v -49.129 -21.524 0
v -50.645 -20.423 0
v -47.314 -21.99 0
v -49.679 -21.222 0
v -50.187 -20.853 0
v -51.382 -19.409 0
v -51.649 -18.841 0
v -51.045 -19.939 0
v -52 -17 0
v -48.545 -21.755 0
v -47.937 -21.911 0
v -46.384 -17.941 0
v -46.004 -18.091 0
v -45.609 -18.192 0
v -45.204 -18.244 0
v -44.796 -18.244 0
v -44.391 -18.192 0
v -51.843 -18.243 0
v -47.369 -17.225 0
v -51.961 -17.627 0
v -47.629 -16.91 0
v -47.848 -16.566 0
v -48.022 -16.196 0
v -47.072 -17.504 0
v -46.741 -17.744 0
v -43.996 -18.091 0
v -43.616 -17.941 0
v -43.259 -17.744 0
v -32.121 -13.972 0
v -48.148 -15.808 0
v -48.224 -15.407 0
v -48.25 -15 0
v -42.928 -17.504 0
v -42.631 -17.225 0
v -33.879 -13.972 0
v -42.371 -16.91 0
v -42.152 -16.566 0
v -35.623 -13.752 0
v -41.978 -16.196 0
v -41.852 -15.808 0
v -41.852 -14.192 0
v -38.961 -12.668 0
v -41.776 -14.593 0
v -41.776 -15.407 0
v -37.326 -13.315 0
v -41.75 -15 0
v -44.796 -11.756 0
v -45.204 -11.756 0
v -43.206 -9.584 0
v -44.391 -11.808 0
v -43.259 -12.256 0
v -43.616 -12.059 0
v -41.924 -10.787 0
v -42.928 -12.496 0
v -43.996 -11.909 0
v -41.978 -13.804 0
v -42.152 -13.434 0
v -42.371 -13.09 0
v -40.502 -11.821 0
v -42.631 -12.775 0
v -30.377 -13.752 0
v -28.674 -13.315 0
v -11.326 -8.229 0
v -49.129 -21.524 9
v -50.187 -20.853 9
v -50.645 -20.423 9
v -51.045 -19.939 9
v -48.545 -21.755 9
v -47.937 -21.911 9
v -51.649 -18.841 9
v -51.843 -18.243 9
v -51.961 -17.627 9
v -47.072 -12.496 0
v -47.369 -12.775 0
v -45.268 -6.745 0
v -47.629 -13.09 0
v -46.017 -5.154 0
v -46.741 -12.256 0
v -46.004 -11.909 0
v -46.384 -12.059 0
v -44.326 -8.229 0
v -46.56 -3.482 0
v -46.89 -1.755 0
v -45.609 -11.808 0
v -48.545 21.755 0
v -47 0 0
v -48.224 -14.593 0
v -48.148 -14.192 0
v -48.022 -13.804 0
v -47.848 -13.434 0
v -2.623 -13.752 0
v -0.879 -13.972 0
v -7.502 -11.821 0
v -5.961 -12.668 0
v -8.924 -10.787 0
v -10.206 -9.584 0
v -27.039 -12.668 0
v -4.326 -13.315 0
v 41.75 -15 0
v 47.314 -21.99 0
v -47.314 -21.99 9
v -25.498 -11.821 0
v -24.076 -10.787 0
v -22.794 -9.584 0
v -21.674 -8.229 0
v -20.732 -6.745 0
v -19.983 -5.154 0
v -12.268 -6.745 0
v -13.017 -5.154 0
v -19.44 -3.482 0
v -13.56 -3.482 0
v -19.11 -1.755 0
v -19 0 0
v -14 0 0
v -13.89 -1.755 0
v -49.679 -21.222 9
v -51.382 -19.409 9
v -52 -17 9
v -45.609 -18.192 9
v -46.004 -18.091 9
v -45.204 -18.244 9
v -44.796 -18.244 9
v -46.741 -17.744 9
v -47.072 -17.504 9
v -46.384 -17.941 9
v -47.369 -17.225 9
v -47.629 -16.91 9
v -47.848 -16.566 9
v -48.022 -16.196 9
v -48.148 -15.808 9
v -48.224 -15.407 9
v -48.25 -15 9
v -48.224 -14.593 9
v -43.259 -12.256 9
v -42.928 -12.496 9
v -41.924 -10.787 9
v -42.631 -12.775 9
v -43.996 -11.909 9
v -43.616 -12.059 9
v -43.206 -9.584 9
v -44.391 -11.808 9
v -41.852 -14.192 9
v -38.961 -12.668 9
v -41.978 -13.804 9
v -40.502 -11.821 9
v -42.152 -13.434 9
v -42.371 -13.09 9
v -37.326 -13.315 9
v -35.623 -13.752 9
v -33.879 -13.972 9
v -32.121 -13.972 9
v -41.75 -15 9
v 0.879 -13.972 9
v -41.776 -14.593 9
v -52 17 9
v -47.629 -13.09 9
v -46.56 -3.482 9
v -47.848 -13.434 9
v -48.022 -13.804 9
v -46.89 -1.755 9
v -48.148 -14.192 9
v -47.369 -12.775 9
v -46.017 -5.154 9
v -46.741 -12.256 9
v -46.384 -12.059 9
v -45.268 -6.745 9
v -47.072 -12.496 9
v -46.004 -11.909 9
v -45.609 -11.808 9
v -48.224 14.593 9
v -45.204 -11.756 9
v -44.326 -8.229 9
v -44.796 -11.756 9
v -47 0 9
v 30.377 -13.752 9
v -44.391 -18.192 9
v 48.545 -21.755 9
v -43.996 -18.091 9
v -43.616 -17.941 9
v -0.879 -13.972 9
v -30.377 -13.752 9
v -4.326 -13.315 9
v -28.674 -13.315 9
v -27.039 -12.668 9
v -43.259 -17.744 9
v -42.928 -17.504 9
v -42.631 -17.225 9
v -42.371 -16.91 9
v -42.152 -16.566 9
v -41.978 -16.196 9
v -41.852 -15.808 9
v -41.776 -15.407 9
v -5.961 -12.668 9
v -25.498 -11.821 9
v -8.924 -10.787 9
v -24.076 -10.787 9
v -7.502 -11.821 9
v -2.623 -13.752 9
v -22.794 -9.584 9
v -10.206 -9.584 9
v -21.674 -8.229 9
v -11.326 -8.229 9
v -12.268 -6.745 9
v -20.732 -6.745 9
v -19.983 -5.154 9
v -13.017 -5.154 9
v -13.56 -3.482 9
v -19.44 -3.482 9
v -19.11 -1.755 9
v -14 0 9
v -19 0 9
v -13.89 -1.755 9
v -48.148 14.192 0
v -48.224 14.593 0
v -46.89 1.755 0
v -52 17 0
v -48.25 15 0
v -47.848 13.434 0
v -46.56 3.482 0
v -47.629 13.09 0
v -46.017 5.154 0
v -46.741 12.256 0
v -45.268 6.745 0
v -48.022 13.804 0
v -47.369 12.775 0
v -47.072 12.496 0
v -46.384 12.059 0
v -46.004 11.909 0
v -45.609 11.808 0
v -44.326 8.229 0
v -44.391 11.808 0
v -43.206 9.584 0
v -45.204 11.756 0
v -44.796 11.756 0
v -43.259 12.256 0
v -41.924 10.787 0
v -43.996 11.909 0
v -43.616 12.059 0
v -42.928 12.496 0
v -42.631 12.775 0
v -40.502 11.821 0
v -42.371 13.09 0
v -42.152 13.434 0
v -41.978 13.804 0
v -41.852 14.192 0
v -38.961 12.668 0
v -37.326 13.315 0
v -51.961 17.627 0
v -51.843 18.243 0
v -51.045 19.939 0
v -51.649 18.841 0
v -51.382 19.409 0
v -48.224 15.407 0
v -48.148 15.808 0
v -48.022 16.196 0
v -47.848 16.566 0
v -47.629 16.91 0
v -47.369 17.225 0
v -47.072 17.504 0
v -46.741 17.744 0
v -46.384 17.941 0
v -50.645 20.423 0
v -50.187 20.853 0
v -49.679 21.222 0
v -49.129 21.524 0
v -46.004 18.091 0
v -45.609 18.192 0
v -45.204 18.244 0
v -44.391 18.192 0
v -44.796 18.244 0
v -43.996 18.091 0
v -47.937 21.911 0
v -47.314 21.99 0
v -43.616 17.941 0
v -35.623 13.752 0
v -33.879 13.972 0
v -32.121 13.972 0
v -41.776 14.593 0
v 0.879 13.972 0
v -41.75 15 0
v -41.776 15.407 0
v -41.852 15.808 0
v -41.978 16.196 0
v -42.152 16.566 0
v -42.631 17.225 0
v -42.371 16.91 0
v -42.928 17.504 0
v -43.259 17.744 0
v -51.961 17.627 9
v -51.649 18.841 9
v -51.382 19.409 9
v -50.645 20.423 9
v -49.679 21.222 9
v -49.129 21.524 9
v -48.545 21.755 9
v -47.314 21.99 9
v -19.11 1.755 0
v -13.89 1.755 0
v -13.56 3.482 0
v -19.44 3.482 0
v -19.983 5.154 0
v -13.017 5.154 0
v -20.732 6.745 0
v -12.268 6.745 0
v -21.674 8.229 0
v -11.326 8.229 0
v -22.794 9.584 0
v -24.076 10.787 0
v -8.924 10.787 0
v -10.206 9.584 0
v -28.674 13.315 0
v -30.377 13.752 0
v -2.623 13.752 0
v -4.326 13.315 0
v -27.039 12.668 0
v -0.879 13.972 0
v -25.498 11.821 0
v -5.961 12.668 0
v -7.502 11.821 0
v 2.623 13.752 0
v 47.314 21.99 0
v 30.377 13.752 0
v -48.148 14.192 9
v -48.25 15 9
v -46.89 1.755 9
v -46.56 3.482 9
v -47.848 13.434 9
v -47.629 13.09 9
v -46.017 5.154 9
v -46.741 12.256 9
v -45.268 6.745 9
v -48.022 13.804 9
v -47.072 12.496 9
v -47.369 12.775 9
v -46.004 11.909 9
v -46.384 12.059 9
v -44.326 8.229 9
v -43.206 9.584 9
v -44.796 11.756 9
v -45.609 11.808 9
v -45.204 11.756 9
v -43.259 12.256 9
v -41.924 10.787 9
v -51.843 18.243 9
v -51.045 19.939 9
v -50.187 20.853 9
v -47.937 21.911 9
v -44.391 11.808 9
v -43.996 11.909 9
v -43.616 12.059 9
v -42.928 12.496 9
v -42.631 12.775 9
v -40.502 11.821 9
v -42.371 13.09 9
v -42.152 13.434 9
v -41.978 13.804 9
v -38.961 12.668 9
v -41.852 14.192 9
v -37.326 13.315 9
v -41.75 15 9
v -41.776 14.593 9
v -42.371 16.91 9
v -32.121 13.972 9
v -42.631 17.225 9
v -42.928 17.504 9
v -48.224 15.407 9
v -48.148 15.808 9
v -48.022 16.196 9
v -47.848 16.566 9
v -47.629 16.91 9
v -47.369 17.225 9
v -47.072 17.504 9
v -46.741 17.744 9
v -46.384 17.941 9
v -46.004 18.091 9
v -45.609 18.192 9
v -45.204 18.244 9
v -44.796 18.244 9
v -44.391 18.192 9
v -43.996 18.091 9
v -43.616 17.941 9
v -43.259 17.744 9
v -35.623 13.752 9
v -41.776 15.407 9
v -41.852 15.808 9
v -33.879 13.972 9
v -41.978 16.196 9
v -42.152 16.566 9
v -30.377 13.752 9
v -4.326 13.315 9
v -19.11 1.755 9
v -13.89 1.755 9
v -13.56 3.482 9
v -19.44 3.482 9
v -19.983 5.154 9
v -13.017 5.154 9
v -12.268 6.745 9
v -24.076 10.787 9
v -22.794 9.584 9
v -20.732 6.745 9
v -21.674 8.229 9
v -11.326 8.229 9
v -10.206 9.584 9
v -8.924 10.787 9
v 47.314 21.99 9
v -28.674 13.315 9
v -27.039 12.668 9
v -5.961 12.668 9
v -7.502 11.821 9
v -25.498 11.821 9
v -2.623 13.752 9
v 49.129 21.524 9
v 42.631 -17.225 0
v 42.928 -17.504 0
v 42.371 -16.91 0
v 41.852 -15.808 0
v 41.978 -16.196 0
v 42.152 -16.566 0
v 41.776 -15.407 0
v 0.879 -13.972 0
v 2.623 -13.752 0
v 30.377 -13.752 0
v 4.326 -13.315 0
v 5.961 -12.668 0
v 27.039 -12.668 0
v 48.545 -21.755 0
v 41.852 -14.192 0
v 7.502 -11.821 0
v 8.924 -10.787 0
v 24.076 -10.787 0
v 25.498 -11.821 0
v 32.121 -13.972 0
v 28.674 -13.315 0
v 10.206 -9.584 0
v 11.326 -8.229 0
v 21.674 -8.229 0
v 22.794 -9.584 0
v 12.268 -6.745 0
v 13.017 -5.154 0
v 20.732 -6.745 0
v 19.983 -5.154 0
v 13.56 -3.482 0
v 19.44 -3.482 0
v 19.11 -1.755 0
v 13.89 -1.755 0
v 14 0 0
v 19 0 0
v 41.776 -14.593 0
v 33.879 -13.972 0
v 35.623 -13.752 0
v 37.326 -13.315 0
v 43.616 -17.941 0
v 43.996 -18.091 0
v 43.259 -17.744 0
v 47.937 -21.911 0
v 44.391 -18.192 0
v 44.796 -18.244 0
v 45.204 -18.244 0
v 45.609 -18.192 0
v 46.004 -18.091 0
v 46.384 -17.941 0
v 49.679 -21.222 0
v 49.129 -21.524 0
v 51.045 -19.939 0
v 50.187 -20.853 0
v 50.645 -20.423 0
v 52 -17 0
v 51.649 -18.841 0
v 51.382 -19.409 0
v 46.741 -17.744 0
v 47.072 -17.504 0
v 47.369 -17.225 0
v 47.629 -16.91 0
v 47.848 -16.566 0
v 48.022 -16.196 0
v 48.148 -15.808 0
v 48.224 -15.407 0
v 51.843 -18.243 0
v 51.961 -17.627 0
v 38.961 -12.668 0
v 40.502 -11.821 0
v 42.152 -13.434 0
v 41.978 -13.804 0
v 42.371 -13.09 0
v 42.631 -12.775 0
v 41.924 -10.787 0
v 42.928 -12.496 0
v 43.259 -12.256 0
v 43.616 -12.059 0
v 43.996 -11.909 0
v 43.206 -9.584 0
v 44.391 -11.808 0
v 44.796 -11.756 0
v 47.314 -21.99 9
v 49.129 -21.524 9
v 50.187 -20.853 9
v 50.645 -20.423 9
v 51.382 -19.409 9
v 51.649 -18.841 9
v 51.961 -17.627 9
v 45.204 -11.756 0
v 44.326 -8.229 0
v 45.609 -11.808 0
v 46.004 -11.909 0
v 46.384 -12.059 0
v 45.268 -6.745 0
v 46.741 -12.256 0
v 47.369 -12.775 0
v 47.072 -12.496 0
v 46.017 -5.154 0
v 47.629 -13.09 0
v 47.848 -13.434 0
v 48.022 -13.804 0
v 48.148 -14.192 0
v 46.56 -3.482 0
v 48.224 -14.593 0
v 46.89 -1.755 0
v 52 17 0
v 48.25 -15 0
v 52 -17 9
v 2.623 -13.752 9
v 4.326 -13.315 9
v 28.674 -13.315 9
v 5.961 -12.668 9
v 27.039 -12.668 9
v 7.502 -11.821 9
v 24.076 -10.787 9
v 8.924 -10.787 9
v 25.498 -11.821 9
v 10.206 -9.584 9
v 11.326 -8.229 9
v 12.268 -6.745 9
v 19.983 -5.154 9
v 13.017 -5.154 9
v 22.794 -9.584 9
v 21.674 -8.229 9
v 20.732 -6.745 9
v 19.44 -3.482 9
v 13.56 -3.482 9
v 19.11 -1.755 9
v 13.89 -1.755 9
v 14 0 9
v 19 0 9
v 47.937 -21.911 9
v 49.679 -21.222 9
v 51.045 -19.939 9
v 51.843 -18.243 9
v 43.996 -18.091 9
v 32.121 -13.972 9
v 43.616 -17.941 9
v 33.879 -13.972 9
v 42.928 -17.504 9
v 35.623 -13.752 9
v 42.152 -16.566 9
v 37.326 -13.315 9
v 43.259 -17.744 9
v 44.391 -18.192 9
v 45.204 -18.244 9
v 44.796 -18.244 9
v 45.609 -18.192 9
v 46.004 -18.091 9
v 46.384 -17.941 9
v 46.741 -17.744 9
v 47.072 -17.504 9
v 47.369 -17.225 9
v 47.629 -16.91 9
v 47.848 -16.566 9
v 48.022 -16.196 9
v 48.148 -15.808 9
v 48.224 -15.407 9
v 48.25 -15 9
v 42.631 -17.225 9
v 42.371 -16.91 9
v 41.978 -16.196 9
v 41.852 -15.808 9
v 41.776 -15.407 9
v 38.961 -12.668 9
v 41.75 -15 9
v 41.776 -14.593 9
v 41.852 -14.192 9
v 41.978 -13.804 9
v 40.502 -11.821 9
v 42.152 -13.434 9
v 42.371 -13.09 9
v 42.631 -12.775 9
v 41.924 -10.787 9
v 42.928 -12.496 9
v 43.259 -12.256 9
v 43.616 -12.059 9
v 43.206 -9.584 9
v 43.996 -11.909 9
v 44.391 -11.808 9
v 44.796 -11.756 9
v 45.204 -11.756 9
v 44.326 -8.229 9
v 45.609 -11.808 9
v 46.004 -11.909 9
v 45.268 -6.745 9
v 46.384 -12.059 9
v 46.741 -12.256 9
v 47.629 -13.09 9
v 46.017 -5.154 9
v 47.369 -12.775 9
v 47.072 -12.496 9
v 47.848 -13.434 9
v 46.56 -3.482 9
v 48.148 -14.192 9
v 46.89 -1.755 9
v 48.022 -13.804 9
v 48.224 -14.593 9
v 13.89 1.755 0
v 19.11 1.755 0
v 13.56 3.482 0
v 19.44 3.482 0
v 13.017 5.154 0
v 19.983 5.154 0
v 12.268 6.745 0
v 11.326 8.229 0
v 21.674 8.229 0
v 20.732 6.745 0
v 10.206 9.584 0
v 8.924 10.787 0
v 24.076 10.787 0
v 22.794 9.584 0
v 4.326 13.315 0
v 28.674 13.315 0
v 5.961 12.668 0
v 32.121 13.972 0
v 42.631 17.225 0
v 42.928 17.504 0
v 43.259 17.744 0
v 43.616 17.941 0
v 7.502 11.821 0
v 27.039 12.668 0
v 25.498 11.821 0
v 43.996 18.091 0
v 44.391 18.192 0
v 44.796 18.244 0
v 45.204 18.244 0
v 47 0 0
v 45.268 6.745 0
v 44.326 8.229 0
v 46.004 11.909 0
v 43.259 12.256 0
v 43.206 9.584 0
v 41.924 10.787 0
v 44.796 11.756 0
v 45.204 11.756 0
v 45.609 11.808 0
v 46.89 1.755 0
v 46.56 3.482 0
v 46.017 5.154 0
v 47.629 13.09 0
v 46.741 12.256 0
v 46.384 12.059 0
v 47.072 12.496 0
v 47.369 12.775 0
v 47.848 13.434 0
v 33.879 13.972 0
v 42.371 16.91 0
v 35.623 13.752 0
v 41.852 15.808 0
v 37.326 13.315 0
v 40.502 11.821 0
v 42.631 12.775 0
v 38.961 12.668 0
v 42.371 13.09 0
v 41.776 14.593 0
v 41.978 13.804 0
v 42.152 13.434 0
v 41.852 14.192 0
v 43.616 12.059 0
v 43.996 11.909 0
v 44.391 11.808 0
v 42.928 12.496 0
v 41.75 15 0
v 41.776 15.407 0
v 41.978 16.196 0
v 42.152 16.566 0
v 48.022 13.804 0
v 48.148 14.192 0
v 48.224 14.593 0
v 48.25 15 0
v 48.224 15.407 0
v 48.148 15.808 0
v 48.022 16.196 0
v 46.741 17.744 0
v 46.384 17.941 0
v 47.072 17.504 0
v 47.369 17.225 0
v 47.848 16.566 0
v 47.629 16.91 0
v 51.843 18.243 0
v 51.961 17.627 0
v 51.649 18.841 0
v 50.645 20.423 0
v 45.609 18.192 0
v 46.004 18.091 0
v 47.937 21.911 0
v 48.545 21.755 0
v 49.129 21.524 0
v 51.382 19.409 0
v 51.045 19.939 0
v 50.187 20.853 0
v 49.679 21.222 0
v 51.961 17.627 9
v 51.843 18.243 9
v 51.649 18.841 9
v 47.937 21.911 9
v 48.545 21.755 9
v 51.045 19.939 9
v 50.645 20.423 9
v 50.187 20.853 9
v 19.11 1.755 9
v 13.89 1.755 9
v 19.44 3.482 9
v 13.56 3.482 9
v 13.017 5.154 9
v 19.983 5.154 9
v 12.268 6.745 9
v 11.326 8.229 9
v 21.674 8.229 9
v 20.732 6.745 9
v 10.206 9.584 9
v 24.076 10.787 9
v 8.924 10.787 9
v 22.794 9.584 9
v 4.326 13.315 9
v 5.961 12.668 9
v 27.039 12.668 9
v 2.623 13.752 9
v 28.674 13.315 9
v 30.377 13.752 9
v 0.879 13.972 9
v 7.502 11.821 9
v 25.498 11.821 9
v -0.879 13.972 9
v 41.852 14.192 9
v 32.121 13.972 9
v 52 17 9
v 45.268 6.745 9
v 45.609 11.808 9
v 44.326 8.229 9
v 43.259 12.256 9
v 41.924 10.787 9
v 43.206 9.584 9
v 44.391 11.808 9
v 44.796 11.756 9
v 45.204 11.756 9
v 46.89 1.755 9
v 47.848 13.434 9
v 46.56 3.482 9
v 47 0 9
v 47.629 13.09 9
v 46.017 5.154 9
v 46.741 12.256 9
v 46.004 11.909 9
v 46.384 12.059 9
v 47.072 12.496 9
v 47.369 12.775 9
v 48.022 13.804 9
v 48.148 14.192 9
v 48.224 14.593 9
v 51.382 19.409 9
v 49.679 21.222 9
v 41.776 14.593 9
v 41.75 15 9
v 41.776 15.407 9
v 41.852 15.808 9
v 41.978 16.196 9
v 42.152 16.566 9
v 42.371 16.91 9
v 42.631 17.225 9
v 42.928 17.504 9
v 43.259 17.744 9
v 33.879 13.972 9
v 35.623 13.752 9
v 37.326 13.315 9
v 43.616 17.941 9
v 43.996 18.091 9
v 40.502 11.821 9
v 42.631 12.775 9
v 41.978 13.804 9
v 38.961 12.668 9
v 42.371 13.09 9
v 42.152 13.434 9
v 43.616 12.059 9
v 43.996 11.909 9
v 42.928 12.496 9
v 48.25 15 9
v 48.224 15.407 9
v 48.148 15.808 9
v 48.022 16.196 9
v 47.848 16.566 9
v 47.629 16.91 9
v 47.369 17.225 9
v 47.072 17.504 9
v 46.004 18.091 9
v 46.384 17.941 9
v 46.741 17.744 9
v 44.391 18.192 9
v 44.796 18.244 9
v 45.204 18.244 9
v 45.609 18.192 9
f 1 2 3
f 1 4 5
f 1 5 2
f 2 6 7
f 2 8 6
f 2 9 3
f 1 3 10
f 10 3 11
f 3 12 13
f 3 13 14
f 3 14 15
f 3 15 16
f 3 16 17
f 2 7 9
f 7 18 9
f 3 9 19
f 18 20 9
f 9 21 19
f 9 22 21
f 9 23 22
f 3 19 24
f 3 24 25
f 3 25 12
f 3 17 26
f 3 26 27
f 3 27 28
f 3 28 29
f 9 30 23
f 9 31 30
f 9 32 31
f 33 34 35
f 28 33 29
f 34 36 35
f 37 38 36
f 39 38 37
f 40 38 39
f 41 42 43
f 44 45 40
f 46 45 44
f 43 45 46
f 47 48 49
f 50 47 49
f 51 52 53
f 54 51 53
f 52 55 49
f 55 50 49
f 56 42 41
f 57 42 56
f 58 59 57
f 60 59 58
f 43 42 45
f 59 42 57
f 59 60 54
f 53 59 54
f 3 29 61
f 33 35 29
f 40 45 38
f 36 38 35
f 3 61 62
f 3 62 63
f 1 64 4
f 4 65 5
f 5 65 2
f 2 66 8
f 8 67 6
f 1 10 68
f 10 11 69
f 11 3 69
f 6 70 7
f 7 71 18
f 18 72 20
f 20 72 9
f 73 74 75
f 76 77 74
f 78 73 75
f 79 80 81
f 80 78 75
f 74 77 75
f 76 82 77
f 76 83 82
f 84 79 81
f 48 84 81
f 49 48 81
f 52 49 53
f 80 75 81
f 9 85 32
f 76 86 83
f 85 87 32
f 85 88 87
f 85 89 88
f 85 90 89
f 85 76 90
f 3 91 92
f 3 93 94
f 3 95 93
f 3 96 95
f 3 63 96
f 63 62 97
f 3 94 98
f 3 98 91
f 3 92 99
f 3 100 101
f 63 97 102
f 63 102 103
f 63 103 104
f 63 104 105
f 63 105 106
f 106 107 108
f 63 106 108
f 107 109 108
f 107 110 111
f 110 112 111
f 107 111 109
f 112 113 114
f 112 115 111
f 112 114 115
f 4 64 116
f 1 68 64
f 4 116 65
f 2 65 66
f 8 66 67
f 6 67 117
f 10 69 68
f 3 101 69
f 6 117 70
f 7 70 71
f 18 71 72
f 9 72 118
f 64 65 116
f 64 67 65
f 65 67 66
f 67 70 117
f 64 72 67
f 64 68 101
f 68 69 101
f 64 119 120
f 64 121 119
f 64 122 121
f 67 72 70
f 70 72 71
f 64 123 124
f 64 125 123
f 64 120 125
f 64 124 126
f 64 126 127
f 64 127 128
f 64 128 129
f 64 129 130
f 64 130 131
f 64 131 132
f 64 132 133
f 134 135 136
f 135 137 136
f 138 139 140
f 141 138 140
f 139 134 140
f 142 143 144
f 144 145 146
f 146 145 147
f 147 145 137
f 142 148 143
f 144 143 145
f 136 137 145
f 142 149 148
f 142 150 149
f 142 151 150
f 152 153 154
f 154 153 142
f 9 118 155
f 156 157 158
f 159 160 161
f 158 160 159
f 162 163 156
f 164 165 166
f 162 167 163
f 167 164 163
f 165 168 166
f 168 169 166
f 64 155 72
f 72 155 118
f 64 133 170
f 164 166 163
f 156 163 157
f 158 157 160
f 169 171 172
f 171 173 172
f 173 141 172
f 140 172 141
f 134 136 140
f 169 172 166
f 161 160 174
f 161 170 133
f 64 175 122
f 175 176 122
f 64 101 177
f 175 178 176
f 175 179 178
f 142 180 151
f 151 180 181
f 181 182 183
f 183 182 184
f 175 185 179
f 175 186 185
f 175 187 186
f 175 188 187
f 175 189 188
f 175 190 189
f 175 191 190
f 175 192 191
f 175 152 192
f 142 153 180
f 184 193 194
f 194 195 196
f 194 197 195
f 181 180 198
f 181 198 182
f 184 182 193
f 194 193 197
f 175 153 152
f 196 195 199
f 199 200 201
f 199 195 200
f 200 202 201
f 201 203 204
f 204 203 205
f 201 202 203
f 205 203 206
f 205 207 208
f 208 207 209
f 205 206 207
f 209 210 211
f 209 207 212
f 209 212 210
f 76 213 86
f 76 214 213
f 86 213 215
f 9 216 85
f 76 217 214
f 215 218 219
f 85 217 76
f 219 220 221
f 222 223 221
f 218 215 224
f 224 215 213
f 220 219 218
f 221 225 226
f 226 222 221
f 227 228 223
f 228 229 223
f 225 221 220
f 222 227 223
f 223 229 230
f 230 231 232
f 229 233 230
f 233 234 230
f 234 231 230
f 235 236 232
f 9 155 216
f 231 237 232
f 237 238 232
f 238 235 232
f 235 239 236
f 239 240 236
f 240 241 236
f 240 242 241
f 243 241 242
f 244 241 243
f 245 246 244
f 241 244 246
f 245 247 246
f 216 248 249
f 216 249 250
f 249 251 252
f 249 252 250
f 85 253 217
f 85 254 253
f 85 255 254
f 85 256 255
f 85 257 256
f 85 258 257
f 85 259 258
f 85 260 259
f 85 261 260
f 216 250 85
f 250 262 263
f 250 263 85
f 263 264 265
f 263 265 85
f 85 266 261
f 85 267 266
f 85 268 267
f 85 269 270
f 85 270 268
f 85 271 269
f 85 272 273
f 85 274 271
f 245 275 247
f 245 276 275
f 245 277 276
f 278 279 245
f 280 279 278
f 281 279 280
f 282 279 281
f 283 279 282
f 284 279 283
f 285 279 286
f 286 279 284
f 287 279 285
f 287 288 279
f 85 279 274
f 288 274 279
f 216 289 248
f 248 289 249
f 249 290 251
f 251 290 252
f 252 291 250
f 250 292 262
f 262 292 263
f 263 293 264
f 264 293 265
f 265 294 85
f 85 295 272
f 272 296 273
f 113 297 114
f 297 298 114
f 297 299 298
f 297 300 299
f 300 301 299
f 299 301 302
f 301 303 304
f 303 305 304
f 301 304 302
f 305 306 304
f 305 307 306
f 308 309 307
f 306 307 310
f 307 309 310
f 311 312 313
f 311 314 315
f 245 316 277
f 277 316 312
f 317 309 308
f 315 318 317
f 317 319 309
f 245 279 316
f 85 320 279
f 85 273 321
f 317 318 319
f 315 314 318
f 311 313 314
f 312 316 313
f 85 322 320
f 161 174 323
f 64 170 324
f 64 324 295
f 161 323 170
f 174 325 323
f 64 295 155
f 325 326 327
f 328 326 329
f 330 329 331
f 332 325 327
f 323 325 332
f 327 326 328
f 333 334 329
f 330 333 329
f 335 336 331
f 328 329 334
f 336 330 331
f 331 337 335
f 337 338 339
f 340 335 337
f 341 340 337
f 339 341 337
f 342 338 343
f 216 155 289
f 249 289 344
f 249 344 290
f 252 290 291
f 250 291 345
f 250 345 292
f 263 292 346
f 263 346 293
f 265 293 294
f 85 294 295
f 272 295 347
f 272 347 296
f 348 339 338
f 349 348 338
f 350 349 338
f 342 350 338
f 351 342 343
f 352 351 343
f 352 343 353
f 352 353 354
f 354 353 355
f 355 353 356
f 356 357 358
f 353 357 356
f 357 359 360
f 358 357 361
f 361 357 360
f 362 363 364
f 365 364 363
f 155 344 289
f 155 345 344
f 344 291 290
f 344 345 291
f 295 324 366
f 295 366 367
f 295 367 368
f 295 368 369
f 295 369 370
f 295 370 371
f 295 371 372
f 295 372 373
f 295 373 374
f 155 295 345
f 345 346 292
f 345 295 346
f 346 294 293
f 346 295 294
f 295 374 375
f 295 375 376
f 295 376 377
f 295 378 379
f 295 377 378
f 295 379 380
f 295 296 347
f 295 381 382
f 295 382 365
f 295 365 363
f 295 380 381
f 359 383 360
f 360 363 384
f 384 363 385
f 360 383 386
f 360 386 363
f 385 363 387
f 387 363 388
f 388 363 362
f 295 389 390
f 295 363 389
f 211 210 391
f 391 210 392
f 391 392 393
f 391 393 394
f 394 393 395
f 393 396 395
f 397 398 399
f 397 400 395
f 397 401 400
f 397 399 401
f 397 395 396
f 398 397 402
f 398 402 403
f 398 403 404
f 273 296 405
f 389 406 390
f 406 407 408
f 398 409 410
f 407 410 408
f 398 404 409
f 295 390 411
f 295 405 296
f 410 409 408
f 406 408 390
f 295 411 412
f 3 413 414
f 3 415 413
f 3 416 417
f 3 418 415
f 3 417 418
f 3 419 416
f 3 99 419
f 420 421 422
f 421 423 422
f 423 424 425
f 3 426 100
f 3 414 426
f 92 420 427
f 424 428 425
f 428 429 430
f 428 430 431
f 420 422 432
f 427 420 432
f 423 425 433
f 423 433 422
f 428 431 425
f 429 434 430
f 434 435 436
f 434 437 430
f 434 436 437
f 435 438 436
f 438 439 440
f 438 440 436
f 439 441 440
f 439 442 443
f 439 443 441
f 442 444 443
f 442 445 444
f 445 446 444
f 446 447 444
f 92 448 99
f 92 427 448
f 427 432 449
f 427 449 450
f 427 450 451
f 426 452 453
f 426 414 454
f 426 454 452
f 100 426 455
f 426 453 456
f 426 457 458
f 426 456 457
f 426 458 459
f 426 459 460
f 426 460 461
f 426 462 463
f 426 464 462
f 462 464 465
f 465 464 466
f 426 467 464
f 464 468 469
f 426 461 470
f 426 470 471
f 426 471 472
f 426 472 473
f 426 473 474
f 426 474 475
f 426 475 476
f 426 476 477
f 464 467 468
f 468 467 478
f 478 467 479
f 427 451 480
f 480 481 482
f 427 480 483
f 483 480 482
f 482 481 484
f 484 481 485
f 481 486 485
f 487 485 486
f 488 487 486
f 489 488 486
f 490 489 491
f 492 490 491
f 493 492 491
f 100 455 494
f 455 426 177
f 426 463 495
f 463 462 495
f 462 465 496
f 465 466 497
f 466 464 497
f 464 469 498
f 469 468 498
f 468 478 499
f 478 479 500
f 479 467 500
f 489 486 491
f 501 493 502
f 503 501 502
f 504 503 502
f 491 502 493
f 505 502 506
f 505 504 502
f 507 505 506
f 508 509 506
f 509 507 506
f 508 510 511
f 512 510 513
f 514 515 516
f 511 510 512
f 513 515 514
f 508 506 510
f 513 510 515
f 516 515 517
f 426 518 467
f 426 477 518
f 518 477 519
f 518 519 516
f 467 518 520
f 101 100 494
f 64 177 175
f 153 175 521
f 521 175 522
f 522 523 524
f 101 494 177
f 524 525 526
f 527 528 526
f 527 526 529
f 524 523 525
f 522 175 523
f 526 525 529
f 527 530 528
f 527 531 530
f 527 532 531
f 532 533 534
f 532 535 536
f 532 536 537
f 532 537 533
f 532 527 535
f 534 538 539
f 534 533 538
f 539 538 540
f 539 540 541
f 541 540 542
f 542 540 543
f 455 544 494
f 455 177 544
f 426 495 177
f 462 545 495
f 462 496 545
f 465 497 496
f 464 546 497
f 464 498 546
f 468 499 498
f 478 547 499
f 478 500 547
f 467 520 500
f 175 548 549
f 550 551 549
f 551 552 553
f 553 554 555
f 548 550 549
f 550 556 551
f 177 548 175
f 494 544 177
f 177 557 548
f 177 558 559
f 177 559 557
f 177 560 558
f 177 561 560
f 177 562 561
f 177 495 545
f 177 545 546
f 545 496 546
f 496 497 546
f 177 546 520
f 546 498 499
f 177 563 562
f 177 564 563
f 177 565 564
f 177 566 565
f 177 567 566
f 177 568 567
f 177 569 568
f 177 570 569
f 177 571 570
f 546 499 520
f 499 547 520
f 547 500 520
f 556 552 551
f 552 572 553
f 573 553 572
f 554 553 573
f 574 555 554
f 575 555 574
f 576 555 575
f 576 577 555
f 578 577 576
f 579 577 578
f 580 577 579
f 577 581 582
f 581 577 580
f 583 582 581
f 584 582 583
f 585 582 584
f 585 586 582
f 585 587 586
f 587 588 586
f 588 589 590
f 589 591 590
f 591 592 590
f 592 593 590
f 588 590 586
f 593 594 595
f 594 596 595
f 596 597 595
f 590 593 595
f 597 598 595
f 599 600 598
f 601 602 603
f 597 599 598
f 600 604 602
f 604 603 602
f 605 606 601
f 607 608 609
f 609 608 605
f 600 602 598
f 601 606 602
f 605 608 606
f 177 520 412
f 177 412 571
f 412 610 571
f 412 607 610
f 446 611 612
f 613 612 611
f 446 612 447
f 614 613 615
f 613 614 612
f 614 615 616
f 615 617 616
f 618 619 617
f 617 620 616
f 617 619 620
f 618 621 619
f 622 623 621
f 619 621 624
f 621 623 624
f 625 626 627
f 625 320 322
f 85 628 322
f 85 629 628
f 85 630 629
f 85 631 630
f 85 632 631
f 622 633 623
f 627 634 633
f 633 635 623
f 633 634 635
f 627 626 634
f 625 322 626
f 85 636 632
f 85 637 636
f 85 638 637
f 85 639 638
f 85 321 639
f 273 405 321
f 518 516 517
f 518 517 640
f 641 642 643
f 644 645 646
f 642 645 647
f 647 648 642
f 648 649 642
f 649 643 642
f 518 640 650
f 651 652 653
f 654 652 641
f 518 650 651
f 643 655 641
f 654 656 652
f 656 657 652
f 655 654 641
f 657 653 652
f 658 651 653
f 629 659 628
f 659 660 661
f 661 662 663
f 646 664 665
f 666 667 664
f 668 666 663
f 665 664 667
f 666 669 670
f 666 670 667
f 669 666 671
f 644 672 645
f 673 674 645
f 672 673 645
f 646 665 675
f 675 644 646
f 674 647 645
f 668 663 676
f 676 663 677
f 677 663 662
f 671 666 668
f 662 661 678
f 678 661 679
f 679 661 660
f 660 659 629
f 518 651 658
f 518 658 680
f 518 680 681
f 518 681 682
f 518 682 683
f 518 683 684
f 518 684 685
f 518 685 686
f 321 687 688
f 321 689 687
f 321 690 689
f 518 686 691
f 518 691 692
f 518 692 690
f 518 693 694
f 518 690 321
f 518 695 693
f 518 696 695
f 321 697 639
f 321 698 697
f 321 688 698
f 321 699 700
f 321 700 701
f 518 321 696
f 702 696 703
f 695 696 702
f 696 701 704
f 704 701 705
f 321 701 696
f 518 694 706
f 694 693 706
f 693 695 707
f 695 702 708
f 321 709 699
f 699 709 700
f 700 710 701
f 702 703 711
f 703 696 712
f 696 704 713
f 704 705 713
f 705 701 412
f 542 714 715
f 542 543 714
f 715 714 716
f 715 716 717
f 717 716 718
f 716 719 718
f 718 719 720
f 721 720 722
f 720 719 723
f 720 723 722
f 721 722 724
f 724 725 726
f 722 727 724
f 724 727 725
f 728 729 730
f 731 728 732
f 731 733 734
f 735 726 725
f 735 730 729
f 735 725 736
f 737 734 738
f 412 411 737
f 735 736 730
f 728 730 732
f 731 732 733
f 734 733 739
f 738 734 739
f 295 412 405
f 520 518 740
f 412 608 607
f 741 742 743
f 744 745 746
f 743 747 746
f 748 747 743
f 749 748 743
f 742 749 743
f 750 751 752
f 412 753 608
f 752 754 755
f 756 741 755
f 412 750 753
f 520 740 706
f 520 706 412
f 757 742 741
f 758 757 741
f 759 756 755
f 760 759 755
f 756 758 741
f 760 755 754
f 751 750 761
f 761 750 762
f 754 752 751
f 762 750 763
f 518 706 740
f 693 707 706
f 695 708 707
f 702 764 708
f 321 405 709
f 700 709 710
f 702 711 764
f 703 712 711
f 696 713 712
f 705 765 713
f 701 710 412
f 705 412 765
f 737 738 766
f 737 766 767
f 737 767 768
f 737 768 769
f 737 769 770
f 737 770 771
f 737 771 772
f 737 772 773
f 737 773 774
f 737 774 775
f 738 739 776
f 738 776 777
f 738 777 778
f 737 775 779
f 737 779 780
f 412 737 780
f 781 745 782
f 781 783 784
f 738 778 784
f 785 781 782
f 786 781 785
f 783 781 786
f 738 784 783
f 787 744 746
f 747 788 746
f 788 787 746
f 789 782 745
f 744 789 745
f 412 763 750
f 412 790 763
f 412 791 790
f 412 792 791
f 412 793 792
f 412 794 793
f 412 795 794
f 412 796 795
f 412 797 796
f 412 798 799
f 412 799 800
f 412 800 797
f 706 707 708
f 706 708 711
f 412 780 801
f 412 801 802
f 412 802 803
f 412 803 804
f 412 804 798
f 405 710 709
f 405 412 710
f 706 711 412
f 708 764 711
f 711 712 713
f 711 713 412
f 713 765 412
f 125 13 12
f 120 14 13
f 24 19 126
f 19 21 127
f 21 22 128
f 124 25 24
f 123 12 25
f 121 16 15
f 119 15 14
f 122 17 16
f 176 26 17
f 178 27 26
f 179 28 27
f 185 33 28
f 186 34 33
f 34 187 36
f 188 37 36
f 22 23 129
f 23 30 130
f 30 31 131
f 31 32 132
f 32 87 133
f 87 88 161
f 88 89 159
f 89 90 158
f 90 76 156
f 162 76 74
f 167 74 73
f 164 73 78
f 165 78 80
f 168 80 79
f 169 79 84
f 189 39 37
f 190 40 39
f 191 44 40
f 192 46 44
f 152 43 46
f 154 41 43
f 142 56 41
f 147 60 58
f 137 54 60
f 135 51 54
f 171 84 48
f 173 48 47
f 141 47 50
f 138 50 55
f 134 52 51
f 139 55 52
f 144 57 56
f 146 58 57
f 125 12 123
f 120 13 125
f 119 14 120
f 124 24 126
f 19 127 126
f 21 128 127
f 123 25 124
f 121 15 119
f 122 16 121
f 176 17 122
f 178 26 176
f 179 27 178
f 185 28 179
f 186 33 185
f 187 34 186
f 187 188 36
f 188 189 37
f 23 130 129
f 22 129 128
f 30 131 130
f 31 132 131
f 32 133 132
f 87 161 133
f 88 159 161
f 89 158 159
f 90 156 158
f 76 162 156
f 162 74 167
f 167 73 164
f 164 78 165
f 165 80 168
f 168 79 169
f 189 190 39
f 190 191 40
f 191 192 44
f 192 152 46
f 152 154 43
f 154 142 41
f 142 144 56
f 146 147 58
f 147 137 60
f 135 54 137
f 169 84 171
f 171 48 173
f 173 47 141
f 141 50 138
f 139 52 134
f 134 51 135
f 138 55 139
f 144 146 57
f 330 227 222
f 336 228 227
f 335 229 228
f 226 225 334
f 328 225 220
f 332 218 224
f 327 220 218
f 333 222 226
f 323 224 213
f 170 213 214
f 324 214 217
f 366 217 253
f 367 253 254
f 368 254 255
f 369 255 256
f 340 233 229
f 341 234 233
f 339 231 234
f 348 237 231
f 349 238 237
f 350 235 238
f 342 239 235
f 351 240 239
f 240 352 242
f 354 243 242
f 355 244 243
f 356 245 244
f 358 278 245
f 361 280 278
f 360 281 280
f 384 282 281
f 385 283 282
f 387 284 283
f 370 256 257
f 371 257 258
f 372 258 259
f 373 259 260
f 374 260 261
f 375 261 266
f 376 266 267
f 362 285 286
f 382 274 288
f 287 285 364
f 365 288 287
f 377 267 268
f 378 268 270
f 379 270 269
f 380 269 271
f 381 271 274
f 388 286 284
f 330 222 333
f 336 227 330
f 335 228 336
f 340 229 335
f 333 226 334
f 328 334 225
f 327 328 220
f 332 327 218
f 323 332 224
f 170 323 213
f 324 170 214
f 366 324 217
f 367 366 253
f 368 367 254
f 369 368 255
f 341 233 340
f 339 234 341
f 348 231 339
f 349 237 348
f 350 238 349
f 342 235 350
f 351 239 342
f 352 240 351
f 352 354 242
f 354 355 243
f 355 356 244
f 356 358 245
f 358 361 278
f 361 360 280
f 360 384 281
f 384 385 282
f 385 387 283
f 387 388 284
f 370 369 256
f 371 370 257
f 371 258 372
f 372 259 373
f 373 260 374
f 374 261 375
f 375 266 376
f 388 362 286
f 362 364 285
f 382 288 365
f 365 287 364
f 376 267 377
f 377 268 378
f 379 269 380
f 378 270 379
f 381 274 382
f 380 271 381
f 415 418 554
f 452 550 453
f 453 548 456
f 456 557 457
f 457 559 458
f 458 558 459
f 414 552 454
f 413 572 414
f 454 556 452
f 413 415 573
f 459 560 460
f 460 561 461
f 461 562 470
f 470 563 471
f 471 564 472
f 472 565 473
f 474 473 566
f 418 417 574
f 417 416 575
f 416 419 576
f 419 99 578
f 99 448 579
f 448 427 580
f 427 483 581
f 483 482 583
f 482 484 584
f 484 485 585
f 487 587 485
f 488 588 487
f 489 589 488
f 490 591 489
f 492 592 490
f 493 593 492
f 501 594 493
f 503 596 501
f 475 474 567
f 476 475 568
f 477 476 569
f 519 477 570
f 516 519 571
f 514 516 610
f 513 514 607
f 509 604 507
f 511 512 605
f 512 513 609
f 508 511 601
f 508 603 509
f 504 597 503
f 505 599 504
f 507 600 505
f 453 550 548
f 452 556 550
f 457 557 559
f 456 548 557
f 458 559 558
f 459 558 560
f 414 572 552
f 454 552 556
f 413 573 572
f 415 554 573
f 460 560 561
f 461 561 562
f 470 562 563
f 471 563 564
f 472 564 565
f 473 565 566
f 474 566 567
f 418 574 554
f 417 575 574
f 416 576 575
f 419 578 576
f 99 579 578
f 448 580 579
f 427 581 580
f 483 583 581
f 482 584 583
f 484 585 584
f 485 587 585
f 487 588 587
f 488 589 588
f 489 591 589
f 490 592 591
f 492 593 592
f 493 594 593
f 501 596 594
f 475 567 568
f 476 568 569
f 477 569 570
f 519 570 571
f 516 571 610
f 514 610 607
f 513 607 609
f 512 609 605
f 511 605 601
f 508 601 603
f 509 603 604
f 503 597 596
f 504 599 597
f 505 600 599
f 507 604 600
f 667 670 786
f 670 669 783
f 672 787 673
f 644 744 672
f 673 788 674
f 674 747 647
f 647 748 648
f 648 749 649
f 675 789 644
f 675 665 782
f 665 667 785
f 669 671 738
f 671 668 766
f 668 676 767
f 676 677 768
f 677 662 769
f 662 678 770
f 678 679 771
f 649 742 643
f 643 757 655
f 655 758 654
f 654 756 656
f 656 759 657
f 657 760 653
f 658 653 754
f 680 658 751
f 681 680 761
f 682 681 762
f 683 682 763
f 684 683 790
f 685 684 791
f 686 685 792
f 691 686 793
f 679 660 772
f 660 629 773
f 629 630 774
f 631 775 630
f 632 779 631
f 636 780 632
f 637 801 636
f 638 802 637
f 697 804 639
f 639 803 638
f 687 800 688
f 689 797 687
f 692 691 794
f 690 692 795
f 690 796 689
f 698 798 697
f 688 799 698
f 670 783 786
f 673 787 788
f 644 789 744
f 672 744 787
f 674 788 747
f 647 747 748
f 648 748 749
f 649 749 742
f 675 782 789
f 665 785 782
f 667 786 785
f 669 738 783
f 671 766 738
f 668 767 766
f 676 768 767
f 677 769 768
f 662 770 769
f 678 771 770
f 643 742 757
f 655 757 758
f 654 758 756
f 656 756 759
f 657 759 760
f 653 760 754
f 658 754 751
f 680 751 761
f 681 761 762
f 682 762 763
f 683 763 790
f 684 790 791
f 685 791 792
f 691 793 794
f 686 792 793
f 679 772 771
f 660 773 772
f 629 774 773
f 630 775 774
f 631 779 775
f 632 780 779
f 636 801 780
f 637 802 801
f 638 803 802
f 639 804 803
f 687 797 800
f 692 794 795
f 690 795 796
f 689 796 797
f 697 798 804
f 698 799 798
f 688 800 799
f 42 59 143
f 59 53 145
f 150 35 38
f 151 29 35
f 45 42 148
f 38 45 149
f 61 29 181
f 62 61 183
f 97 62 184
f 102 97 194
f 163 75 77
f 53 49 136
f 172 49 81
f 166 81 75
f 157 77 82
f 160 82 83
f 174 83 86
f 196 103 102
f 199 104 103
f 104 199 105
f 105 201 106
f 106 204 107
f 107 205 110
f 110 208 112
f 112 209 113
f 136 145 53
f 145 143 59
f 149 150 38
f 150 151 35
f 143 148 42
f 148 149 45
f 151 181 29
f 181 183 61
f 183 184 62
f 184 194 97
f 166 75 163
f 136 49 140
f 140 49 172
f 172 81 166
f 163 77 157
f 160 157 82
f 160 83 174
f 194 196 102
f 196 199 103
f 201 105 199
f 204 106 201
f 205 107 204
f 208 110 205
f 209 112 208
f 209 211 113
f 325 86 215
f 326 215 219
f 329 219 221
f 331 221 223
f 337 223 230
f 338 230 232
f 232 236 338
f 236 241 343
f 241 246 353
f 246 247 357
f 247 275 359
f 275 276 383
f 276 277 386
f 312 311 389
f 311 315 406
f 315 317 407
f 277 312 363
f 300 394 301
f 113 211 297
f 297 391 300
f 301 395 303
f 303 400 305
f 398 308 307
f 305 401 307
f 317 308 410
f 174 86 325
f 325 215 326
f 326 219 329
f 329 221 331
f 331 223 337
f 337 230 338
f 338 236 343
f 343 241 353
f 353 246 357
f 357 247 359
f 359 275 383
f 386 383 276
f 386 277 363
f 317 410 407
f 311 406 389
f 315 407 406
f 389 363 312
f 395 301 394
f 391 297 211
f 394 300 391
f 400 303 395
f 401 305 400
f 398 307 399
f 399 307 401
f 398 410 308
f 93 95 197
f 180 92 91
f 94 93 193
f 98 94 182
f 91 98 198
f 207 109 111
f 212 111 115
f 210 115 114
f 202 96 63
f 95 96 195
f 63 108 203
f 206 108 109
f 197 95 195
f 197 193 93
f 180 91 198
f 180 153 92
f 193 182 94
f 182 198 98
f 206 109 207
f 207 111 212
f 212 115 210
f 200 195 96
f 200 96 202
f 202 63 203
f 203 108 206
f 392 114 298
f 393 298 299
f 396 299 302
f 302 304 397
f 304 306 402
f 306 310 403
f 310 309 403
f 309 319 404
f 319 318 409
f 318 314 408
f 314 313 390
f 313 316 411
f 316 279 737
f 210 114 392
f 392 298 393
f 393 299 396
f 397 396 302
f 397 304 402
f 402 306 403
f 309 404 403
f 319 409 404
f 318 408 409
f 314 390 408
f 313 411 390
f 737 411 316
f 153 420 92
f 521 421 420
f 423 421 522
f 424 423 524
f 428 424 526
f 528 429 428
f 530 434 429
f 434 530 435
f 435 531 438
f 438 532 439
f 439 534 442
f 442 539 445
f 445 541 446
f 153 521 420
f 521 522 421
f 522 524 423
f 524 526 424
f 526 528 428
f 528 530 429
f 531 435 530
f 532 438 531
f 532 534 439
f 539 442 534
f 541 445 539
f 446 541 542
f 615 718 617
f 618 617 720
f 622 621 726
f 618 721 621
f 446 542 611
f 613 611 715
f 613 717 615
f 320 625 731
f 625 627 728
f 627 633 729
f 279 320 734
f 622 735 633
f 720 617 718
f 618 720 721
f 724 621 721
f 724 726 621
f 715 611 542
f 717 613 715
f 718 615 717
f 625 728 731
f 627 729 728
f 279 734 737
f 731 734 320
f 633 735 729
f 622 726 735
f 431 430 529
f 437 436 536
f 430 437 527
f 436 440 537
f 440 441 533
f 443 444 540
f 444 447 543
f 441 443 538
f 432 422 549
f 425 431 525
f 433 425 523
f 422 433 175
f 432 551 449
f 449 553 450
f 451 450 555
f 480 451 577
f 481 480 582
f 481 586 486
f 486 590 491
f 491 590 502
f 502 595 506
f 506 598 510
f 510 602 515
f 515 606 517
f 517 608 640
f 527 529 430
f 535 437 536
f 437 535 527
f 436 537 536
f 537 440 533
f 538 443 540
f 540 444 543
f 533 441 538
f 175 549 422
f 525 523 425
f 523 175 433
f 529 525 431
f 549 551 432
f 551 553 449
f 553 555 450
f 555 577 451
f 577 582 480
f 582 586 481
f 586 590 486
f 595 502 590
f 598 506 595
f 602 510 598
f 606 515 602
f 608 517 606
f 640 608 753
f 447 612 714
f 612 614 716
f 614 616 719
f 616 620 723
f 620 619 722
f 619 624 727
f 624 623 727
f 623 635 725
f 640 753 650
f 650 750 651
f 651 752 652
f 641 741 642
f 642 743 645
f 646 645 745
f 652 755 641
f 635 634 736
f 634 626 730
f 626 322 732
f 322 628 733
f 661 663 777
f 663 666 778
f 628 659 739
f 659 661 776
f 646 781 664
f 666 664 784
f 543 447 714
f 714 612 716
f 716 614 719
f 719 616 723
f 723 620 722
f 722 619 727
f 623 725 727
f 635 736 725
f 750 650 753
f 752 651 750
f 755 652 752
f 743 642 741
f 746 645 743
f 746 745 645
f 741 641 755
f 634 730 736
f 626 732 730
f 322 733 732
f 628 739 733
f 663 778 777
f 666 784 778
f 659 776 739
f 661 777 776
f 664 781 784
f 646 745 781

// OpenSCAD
$fn = 50;

difference() {
	union() {
		hull() {
			translate(v = [-47.0, 17.0, 0]) {
				cylinder(h = 9, r = 5);
			}
			translate(v = [47.0, 17.0, 0]) {
				cylinder(h = 9, r = 5);
			}
			translate(v = [-47.0, -17.0, 0]) {
				cylinder(h = 9, r = 5);
			}
			translate(v = [47.0, -17.0, 0]) {
				cylinder(h = 9, r = 5);
			}
		}
	}
	union() {
		translate(v = [-45.0, -15.0, -100.0]) {
			cylinder(h = 200, r = 3.25);
		}
		translate(v = [-45.0, 15.0, -100.0]) {
			cylinder(h = 200, r = 3.25);
		}
		translate(v = [45.0, -15.0, -100.0]) {
			cylinder(h = 200, r = 3.25);
		}
		translate(v = [45.0, 15.0, -100.0]) {
			cylinder(h = 200, r = 3.25);
		}
		translate(v = [-45.0, -15.0, -100.0]) {
			cylinder(h = 200, r = 1.8);
		}
		translate(v = [-45.0, 15.0, -100.0]) {
			cylinder(h = 200, r = 1.8);
		}
		translate(v = [45.0, -15.0, -100.0]) {
			cylinder(h = 200, r = 1.8);
		}
		translate(v = [45.0, 15.0, -100.0]) {
			cylinder(h = 200, r = 1.8);
		}
		translate(v = [-33.0, 0, 0.0]) {
			cylinder(h = 9, r = 14.0);
		}
		cylinder(h = 9, r = 14.0);
		translate(v = [33.0, 0, 0.0]) {
			cylinder(h = 9, r = 14.0);
		}
	}
}
